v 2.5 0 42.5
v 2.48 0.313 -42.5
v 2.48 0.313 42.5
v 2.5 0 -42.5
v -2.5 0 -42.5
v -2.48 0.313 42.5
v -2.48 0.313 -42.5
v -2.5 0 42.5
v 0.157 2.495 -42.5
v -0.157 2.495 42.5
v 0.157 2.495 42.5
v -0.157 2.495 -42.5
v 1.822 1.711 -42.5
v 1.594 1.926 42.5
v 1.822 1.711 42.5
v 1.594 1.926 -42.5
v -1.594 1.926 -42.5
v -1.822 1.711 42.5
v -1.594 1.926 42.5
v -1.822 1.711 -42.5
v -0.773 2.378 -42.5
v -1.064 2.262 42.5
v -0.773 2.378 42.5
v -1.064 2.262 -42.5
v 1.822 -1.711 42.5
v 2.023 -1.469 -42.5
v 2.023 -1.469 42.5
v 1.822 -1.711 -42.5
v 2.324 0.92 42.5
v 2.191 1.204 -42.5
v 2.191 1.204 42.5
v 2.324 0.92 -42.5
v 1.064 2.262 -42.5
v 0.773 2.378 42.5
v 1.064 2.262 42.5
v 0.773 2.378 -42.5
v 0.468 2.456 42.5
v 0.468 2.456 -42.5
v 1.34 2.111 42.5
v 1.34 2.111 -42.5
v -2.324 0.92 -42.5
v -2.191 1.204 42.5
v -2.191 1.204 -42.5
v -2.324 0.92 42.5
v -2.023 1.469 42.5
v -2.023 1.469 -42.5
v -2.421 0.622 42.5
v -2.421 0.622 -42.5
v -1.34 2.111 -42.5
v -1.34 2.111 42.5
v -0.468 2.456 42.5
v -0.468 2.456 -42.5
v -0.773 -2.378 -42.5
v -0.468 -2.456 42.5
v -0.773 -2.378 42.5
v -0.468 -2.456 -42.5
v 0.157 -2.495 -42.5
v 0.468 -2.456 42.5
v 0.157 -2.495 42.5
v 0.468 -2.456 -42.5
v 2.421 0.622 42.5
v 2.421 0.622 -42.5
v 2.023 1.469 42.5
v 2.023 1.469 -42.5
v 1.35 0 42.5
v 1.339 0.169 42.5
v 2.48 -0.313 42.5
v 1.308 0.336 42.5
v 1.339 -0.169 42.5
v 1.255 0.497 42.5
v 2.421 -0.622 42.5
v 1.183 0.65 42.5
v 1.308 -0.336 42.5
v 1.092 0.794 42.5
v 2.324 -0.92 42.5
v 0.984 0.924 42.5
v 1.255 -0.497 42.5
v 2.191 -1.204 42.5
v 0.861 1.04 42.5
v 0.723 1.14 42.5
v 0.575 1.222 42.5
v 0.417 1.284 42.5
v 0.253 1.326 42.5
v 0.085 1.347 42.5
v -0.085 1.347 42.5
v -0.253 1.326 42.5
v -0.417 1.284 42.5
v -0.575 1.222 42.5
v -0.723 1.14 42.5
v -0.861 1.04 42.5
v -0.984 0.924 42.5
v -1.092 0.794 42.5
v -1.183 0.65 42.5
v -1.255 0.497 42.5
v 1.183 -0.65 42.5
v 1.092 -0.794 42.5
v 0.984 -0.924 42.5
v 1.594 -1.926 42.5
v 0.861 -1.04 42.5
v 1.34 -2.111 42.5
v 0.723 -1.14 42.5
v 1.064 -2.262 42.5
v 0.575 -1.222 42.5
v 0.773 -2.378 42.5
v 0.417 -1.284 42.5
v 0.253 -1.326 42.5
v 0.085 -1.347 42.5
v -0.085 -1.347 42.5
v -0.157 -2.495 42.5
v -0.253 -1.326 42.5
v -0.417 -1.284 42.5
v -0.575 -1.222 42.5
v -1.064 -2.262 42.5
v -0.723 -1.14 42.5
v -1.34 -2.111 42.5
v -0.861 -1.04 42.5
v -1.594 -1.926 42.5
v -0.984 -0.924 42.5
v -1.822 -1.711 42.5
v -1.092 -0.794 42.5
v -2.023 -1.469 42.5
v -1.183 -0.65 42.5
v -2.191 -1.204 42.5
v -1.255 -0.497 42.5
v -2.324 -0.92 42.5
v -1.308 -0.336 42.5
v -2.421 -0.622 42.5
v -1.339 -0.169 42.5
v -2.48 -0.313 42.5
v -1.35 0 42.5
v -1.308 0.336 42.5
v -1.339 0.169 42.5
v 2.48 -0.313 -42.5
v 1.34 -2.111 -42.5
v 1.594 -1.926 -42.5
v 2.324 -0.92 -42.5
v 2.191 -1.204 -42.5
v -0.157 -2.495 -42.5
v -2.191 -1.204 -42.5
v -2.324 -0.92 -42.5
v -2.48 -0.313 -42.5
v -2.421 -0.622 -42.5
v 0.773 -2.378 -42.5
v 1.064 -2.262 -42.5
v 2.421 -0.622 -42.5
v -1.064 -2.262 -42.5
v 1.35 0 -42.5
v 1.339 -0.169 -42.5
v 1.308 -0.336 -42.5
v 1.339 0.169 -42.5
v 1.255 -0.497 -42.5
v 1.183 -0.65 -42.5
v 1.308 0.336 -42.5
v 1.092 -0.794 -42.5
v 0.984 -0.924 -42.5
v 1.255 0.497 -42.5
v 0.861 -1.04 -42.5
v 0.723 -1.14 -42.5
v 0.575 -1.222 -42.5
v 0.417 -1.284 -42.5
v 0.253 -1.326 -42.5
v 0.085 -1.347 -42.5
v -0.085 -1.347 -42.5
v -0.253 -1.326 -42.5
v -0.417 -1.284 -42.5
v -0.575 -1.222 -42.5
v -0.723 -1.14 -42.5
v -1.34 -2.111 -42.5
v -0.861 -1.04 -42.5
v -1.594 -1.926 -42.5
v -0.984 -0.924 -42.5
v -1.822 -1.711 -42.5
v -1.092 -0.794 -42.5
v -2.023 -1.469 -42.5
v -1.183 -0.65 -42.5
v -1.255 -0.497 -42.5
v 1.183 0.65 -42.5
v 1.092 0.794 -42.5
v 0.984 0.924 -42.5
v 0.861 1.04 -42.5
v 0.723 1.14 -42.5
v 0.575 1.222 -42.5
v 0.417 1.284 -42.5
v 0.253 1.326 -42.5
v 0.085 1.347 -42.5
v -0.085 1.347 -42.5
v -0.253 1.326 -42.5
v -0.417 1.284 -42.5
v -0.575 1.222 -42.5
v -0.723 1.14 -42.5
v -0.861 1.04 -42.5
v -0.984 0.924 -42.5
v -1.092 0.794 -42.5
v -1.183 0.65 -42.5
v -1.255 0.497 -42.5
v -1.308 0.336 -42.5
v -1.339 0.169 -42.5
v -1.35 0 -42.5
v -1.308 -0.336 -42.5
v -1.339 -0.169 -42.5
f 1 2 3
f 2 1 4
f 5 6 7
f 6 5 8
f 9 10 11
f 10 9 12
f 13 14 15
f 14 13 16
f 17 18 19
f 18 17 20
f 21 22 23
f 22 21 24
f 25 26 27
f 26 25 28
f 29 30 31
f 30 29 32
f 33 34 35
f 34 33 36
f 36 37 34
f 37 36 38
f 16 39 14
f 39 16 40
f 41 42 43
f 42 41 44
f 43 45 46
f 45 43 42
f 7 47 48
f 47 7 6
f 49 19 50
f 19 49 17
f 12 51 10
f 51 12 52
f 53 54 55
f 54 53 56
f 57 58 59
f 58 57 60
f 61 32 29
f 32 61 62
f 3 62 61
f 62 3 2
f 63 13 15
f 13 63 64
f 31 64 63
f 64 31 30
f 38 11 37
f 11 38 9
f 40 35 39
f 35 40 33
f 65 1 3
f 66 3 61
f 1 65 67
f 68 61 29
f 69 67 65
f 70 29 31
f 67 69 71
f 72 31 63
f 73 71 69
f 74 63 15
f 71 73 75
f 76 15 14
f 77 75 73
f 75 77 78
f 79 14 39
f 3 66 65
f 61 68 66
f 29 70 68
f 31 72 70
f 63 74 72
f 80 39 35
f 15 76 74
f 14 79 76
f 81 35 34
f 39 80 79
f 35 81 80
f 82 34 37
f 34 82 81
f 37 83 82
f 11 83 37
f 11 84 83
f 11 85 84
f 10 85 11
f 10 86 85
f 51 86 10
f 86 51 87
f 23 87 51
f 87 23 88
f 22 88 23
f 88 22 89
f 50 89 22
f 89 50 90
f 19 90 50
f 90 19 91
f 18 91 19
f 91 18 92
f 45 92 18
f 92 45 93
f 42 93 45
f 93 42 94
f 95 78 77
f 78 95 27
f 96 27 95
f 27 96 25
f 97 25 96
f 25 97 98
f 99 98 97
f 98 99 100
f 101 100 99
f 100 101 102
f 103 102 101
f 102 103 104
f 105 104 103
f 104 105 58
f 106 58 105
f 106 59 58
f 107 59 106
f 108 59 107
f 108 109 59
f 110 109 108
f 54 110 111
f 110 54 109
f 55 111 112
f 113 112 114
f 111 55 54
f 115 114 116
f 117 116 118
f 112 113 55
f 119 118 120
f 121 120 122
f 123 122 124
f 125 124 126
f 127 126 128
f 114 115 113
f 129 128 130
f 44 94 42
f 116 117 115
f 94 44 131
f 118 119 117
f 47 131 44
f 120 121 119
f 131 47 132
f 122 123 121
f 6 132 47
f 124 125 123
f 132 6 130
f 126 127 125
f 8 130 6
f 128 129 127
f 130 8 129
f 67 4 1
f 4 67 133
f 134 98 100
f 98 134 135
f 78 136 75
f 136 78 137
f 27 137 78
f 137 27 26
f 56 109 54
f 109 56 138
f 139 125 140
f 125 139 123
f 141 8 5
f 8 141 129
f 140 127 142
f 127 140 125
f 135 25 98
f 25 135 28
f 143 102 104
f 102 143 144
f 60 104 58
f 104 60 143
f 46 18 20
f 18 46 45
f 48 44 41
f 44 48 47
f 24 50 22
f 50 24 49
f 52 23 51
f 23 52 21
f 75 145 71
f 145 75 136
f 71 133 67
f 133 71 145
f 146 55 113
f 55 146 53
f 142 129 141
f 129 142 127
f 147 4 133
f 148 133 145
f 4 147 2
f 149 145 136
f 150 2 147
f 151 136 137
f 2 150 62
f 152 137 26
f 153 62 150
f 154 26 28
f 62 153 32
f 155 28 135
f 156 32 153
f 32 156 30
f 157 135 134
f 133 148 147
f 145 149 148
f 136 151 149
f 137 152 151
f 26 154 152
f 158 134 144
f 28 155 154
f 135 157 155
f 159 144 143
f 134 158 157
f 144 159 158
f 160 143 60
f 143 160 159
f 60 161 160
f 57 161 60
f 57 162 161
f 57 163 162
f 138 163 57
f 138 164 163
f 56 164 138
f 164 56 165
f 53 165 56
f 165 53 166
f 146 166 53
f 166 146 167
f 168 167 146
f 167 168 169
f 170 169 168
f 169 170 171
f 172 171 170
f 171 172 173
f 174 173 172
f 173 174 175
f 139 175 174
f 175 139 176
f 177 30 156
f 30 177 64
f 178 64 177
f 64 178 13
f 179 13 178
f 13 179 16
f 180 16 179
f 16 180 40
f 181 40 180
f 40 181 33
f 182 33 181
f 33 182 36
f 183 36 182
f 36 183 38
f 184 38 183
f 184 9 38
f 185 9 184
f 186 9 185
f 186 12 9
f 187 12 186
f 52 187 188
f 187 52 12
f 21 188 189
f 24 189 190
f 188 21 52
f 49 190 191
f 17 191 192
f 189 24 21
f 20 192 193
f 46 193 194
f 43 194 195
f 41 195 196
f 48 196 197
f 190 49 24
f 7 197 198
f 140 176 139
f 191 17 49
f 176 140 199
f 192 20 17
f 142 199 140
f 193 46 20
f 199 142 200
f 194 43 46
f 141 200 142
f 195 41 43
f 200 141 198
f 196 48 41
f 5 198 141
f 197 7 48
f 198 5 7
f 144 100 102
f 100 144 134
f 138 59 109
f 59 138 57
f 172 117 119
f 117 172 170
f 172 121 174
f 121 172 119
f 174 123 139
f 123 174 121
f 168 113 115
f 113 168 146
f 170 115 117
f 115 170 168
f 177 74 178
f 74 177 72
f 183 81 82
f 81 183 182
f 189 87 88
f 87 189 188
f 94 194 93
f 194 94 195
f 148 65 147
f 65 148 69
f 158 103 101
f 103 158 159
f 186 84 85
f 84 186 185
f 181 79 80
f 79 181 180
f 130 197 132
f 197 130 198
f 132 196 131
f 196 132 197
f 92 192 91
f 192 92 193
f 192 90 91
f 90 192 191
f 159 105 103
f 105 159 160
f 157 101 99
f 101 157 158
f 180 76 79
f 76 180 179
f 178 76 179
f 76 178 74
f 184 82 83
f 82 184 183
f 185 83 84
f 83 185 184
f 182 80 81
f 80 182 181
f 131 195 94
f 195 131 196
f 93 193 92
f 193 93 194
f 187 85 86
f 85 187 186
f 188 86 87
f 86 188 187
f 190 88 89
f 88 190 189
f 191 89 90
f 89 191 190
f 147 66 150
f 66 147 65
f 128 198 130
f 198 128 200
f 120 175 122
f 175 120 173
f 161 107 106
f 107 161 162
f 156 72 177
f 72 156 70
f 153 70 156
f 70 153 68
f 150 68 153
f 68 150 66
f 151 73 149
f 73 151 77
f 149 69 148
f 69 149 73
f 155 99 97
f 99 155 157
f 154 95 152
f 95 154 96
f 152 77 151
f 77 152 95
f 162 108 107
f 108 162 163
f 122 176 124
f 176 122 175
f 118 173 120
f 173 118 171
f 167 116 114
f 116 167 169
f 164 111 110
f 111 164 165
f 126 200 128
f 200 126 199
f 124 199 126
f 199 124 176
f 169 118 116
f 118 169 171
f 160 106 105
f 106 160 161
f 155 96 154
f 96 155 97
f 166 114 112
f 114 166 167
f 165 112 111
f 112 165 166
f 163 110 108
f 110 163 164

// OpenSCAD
$fn = 50;


difference() {
	union() {
		translate(v = [0, 0, -42.5000000000]) {
			cylinder(h = 85, r = 2.5000000000);
		}
	}
	union() {
		translate(v = [0, 0, -100.0000000000]) {
			cylinder(h = 200, r = 1.3500000000);
		}
	}
}
